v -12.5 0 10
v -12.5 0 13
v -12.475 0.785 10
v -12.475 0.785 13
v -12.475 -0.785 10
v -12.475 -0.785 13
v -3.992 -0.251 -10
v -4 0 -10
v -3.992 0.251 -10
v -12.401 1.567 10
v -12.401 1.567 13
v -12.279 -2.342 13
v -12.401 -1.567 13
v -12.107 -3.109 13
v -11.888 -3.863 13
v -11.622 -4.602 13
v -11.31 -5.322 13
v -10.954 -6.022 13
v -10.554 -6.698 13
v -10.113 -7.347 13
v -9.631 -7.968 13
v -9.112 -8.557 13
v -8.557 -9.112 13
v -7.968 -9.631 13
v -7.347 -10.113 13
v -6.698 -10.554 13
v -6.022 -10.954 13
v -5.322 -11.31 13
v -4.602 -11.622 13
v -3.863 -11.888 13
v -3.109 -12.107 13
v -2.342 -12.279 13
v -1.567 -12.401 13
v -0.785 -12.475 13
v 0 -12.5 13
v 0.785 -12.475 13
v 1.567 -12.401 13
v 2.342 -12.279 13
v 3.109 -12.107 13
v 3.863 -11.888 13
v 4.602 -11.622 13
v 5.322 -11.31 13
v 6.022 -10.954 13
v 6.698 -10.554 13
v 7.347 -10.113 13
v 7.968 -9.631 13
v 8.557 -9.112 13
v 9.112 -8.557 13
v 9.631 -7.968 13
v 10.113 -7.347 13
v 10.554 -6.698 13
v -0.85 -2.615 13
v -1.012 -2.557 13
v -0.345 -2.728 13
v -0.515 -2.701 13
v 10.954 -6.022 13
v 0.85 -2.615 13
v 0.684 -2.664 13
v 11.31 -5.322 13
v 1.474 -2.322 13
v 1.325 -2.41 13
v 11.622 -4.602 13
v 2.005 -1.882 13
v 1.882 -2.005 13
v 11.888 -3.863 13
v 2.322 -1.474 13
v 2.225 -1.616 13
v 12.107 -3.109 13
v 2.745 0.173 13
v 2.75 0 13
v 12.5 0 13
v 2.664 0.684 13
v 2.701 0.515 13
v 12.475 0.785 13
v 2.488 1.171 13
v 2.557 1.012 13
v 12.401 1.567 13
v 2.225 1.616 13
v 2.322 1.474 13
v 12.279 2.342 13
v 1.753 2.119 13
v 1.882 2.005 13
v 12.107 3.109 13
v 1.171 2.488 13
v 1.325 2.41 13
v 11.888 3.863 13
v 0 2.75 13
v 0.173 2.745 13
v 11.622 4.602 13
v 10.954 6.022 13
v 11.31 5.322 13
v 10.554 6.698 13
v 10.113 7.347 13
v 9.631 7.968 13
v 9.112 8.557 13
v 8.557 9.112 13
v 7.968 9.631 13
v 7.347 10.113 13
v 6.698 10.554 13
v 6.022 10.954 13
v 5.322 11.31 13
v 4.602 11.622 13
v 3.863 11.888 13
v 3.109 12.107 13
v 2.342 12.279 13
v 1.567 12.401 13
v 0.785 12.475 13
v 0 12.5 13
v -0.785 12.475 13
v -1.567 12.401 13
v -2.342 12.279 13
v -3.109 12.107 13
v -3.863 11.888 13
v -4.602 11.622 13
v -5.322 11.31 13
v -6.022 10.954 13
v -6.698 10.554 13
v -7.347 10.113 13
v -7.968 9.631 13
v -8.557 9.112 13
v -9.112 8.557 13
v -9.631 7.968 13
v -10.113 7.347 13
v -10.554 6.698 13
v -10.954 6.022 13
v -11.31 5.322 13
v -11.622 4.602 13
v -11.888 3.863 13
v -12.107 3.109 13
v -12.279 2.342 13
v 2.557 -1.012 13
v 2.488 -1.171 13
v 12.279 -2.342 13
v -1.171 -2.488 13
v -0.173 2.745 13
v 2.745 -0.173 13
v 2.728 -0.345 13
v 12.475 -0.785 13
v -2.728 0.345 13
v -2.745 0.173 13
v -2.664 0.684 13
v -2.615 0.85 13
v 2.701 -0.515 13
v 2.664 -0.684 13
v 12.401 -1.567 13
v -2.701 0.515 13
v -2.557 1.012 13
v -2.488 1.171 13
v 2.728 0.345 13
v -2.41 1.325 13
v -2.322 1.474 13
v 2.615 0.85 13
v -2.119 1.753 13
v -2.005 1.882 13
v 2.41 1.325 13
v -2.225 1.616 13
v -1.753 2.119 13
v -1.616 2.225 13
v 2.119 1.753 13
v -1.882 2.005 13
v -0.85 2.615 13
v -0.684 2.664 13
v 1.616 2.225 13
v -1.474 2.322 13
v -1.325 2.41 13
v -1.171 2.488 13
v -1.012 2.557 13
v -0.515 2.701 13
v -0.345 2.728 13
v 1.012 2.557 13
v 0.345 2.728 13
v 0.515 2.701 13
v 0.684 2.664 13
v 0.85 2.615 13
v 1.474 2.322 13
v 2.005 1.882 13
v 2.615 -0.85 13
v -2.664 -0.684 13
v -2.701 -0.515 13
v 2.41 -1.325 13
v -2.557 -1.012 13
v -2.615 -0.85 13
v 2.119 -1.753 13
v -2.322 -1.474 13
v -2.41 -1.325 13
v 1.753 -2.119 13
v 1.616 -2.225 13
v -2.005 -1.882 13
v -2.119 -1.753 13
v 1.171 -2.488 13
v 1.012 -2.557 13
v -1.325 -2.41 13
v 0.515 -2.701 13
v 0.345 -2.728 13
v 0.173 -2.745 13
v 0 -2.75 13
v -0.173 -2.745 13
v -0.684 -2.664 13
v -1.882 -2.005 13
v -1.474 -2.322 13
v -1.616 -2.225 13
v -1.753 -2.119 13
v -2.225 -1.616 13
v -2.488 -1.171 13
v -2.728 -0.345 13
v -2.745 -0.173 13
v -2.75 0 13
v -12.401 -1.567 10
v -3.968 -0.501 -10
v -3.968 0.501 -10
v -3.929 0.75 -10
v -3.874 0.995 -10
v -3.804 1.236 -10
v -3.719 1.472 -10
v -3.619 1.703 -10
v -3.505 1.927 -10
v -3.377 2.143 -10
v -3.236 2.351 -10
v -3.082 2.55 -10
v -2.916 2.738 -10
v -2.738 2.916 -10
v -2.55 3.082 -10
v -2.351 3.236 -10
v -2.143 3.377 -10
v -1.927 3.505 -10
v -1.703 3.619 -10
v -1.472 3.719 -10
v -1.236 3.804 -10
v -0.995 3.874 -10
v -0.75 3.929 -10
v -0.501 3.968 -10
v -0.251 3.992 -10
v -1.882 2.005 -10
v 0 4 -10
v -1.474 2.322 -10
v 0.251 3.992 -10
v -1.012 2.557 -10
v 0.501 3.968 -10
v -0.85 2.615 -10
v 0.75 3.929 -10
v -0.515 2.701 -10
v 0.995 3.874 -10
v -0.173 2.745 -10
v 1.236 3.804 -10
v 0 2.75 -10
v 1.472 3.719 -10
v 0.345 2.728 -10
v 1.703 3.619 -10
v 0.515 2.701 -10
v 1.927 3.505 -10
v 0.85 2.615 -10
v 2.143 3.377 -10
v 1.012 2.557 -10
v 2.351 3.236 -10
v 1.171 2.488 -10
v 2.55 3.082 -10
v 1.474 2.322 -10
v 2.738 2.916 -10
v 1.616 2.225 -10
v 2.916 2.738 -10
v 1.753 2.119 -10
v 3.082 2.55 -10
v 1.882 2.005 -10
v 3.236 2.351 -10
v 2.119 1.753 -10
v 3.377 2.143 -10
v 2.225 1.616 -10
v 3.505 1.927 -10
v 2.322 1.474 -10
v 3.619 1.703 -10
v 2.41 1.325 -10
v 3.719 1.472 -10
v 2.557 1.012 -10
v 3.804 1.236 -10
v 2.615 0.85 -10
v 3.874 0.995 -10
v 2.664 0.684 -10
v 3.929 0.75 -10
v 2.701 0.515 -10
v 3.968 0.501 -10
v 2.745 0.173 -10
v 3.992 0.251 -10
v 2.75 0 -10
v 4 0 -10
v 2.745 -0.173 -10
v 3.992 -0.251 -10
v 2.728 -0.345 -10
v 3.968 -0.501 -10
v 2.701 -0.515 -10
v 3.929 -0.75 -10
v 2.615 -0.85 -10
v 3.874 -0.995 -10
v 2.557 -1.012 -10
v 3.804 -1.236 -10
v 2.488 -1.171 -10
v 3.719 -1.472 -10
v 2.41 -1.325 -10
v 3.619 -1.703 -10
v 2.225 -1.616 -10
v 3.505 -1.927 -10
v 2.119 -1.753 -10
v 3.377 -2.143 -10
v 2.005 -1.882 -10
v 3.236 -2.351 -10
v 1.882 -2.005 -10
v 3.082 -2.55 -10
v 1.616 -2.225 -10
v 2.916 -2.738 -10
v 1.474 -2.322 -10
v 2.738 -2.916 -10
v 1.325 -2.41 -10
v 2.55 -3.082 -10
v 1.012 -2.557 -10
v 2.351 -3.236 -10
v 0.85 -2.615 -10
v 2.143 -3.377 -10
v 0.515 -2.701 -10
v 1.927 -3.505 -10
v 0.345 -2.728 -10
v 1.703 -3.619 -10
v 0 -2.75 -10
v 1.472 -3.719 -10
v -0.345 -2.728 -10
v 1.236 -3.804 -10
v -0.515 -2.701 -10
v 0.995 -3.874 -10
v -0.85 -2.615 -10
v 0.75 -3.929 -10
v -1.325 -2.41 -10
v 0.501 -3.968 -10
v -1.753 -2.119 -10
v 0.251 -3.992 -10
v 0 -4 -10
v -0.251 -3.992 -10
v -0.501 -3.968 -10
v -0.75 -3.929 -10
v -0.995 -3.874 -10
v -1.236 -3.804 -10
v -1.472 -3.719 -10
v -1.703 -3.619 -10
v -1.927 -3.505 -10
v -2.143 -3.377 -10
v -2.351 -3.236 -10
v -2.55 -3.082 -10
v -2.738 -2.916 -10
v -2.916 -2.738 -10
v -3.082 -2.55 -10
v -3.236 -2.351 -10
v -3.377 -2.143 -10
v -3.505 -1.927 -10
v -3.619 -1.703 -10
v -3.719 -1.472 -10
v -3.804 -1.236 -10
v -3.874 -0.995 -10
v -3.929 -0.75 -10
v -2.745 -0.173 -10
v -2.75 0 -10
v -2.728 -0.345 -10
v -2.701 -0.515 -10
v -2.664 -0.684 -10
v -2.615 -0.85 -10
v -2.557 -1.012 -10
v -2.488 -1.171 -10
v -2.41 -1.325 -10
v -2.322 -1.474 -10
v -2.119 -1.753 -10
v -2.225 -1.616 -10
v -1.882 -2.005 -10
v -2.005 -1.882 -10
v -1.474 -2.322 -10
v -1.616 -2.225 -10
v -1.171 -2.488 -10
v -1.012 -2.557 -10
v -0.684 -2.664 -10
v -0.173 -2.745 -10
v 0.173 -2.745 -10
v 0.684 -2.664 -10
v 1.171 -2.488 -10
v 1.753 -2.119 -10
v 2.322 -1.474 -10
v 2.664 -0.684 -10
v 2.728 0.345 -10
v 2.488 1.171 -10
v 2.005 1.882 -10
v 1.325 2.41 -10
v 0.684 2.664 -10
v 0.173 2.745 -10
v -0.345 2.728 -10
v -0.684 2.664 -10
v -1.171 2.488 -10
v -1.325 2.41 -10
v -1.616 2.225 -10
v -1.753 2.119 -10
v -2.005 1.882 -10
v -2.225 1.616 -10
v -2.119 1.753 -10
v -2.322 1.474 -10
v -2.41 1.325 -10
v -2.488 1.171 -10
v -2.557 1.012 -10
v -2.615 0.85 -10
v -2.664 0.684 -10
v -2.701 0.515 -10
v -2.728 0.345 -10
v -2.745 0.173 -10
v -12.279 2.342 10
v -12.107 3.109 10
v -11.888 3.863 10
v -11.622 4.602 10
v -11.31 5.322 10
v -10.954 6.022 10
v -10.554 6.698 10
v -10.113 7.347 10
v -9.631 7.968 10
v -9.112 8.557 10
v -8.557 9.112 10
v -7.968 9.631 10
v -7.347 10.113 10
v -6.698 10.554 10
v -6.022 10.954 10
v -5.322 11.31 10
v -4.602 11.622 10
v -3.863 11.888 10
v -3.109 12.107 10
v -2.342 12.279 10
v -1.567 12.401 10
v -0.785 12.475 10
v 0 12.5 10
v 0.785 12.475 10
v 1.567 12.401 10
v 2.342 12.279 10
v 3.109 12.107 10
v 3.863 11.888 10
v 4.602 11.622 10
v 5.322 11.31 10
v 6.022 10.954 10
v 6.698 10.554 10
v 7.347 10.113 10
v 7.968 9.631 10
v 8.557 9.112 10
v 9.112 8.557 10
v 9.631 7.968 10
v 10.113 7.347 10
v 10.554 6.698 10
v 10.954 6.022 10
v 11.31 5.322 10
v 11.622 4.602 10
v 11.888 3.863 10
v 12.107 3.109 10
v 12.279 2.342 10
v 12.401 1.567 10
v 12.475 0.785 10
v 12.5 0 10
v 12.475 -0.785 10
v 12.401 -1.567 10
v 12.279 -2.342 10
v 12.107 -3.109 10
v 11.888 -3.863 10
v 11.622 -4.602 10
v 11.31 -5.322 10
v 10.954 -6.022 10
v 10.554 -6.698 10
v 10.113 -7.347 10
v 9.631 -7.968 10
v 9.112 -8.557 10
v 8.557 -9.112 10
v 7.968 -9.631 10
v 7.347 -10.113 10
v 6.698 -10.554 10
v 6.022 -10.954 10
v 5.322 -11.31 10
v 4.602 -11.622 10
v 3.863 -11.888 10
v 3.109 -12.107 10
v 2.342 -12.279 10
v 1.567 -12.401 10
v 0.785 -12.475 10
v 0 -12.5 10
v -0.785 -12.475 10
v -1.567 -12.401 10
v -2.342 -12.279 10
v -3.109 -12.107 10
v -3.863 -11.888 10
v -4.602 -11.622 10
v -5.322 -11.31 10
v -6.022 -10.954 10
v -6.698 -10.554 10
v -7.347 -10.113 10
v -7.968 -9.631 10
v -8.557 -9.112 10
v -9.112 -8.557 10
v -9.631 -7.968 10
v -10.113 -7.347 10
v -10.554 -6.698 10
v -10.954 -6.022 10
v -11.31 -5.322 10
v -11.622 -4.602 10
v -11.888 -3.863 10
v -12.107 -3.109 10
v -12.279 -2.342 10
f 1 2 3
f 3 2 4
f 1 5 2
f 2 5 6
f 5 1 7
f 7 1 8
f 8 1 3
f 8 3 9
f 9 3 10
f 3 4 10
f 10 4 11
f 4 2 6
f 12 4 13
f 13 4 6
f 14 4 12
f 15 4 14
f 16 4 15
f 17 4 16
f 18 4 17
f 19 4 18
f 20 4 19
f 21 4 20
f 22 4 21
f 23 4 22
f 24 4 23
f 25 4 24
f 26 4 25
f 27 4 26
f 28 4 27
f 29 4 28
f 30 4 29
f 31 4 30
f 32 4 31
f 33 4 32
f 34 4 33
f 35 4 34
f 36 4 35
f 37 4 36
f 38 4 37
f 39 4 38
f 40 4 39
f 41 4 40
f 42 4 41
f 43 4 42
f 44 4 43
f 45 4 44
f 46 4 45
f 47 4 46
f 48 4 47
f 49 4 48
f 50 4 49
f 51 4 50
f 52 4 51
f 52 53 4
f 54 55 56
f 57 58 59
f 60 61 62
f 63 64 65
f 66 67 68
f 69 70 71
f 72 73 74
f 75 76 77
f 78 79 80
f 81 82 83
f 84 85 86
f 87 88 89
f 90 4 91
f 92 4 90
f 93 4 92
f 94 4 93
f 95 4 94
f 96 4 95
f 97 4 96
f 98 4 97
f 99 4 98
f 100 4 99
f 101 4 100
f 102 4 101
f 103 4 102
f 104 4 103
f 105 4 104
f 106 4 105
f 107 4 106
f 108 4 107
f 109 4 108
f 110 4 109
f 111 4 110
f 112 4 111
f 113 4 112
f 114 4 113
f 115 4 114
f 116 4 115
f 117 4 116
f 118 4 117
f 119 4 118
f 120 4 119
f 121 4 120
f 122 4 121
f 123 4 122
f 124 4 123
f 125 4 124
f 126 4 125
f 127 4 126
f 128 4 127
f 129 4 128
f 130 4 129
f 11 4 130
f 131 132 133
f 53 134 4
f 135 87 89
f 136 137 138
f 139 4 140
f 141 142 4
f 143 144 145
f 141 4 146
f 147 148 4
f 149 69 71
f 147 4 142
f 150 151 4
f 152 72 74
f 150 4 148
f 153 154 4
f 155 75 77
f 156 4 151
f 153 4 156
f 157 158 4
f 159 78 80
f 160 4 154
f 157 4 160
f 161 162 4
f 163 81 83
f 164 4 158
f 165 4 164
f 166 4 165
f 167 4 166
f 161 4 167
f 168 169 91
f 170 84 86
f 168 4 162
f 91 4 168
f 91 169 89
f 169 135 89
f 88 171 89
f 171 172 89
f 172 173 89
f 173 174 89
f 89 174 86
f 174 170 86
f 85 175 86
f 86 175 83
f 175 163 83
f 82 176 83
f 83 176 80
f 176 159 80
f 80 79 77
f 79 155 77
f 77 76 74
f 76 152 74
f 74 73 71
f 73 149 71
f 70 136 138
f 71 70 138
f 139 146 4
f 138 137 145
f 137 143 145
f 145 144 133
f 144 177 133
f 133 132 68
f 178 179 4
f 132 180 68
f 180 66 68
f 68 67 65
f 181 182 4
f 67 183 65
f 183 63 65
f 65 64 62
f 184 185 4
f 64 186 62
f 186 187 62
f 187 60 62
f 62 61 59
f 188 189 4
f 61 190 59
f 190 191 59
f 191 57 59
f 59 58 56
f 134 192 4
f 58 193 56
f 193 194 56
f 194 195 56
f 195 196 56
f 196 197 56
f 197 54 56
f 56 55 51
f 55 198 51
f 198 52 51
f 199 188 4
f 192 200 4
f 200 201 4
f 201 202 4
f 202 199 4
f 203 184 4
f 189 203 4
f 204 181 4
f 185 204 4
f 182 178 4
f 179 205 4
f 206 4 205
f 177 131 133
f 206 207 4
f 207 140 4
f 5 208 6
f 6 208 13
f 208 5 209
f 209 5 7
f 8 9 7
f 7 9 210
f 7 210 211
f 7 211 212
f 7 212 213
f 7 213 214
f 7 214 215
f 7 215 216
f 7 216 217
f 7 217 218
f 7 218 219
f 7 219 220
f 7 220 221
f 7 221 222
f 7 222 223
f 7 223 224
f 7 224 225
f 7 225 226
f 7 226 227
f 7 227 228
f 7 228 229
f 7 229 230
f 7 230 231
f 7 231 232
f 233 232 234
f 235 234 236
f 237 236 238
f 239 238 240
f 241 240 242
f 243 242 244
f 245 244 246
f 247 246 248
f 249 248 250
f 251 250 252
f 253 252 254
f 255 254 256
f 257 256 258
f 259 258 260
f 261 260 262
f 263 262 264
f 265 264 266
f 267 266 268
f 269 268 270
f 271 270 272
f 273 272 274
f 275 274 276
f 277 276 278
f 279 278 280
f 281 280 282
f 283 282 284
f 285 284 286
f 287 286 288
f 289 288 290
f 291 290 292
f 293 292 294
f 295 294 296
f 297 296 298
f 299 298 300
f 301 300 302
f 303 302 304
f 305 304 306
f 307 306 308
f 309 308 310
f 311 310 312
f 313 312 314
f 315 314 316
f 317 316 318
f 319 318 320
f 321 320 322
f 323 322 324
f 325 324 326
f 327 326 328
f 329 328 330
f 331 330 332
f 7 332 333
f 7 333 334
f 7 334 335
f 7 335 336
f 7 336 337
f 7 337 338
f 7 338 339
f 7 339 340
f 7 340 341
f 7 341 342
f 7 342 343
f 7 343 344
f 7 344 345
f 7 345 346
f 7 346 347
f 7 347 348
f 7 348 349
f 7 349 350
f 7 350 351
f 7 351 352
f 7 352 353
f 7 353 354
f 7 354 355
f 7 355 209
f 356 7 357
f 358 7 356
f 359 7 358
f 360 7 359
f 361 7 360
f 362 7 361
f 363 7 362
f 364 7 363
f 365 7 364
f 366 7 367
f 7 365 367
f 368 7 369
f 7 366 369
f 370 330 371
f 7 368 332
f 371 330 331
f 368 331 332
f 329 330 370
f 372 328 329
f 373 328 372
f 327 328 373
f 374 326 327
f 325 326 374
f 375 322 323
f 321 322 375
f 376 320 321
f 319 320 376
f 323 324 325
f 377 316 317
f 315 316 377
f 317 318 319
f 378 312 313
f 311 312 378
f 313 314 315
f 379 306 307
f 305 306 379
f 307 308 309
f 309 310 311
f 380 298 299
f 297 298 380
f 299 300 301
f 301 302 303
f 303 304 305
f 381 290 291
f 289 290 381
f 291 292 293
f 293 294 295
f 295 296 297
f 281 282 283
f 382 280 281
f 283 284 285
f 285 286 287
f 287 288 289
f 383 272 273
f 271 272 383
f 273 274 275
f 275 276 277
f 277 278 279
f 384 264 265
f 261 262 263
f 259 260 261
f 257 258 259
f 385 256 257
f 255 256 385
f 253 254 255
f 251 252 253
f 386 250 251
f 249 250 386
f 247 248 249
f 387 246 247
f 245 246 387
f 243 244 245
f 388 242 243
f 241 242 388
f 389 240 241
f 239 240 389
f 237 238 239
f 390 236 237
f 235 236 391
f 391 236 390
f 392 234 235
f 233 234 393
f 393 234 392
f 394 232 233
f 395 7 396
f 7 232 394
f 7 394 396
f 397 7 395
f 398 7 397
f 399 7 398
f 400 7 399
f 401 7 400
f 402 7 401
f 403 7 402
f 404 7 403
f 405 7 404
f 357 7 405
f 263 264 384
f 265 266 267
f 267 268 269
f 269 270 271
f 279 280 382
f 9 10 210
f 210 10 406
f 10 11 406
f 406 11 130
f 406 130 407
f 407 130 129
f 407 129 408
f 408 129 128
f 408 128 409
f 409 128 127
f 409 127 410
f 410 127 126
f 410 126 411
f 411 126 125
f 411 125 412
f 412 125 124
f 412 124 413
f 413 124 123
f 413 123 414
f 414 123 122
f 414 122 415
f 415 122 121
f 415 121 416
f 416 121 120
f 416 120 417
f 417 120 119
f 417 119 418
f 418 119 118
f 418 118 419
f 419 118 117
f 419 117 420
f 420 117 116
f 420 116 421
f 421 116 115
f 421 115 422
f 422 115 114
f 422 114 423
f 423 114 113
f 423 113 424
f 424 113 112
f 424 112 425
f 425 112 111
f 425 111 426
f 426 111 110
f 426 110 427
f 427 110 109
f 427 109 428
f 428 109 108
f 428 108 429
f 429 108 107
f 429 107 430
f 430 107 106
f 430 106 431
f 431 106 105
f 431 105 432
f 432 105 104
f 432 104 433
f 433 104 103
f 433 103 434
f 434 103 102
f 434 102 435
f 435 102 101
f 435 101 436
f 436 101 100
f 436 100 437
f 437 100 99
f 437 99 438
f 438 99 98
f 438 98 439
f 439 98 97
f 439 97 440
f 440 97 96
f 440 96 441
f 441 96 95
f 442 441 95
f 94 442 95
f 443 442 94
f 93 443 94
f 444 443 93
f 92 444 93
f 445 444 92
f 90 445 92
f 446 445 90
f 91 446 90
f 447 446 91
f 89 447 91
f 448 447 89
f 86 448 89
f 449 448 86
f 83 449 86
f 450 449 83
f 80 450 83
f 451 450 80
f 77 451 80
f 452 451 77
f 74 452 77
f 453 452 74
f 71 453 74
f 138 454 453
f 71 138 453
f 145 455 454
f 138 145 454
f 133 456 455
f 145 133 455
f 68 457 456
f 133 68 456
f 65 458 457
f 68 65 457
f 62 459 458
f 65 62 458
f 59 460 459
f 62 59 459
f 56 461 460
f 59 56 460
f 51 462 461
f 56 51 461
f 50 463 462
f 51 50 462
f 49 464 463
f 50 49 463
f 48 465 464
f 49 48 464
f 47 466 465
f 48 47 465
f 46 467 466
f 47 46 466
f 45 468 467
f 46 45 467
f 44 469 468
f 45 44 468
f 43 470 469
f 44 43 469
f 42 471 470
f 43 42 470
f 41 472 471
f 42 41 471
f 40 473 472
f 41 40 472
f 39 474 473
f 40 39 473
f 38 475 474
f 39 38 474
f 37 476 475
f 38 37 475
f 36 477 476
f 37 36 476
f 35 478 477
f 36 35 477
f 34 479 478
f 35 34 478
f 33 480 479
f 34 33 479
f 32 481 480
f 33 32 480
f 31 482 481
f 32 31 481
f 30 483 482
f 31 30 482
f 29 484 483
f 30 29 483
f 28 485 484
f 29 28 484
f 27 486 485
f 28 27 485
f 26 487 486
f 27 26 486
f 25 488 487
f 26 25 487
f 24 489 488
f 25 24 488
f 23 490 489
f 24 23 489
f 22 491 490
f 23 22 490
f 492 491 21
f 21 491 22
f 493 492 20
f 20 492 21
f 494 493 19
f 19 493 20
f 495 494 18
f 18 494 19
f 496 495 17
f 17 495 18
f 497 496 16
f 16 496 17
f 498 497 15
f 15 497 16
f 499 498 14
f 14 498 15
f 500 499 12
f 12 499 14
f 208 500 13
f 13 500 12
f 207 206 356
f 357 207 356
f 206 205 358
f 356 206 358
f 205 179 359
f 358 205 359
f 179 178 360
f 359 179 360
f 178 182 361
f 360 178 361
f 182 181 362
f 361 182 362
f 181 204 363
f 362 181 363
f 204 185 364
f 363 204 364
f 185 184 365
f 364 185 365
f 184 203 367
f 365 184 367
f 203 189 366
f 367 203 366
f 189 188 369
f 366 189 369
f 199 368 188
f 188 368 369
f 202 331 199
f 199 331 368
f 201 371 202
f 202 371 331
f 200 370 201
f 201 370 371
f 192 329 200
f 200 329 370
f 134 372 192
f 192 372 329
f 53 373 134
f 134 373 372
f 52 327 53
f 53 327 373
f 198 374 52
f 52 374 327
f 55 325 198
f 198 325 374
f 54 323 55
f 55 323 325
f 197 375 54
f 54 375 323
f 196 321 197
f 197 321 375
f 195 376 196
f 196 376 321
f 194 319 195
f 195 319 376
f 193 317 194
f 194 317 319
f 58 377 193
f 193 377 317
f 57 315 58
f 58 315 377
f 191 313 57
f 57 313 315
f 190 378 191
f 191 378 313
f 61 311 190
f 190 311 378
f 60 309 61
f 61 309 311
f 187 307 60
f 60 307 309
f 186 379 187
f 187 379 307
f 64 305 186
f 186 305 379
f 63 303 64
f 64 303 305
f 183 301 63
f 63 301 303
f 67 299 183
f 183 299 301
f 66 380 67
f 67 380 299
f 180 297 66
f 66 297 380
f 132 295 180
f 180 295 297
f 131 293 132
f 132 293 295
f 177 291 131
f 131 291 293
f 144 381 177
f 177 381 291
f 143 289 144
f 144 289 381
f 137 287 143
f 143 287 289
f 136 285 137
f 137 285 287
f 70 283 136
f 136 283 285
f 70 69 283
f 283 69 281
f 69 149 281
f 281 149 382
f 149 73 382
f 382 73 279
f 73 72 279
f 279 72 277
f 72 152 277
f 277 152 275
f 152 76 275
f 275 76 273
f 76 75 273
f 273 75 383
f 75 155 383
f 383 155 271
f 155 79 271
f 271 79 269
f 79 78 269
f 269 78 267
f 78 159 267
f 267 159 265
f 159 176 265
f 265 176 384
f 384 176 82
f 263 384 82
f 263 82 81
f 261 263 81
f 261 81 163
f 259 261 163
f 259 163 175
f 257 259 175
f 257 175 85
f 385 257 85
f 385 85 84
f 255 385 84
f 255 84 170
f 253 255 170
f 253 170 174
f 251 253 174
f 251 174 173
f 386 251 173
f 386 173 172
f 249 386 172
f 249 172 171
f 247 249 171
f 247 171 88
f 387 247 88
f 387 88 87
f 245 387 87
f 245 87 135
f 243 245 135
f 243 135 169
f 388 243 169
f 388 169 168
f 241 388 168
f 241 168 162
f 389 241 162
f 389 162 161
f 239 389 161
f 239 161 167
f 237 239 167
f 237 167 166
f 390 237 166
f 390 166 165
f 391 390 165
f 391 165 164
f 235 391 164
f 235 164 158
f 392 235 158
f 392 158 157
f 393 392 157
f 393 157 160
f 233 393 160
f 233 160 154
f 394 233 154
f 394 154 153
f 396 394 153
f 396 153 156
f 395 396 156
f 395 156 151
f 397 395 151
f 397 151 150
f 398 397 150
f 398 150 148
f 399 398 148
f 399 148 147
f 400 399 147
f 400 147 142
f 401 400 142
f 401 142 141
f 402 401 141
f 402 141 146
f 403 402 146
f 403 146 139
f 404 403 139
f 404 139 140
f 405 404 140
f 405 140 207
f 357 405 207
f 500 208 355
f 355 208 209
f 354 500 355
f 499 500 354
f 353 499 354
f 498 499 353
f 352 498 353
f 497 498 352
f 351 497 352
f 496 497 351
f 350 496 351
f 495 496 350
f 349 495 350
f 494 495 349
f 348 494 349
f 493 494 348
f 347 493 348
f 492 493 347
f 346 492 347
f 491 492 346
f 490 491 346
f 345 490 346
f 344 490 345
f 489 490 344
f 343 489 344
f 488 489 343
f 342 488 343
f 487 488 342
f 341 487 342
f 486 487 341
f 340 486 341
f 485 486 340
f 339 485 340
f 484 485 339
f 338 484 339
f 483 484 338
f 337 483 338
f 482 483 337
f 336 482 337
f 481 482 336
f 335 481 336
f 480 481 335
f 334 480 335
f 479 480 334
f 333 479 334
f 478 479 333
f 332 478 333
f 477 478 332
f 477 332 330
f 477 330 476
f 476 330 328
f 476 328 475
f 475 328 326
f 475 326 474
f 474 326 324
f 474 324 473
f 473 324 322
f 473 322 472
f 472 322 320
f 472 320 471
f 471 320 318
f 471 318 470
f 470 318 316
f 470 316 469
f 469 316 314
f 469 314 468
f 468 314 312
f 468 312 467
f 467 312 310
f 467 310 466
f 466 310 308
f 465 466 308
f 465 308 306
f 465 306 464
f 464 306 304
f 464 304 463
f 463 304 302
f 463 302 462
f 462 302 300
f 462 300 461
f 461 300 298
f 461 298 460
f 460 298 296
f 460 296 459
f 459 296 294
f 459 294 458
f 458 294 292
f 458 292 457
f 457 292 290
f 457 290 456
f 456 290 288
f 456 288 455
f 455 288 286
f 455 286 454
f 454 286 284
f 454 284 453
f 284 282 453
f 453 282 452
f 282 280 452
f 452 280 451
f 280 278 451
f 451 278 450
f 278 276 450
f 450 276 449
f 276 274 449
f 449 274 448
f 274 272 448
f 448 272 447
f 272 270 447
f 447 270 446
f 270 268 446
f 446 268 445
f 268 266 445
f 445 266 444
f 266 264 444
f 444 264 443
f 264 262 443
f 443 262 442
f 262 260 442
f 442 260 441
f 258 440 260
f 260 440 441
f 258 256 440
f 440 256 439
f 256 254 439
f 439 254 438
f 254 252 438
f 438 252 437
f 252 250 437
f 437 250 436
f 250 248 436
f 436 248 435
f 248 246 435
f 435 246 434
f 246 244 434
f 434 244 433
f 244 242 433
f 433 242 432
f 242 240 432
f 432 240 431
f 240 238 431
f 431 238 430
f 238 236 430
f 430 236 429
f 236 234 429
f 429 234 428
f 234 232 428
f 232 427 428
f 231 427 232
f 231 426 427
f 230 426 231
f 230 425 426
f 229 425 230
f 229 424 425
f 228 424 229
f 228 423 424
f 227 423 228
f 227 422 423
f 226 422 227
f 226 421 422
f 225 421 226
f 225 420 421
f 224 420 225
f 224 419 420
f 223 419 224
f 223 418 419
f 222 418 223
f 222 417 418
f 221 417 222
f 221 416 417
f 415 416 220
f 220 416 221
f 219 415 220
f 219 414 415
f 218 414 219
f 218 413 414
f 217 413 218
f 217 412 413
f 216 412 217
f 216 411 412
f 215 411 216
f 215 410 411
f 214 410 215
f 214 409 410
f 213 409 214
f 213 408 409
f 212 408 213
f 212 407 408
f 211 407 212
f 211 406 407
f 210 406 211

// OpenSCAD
$fn=100;

d=25;
h=20;

difference(){
union(){
	translate([0,0,0])cylinder(d1=8,d2=d,h=h,center=true);
	translate([0,0,11.5])cylinder(d=d,h=3,center=true);

}

cylinder(d=5.5,h=h+10,center=true);

}
